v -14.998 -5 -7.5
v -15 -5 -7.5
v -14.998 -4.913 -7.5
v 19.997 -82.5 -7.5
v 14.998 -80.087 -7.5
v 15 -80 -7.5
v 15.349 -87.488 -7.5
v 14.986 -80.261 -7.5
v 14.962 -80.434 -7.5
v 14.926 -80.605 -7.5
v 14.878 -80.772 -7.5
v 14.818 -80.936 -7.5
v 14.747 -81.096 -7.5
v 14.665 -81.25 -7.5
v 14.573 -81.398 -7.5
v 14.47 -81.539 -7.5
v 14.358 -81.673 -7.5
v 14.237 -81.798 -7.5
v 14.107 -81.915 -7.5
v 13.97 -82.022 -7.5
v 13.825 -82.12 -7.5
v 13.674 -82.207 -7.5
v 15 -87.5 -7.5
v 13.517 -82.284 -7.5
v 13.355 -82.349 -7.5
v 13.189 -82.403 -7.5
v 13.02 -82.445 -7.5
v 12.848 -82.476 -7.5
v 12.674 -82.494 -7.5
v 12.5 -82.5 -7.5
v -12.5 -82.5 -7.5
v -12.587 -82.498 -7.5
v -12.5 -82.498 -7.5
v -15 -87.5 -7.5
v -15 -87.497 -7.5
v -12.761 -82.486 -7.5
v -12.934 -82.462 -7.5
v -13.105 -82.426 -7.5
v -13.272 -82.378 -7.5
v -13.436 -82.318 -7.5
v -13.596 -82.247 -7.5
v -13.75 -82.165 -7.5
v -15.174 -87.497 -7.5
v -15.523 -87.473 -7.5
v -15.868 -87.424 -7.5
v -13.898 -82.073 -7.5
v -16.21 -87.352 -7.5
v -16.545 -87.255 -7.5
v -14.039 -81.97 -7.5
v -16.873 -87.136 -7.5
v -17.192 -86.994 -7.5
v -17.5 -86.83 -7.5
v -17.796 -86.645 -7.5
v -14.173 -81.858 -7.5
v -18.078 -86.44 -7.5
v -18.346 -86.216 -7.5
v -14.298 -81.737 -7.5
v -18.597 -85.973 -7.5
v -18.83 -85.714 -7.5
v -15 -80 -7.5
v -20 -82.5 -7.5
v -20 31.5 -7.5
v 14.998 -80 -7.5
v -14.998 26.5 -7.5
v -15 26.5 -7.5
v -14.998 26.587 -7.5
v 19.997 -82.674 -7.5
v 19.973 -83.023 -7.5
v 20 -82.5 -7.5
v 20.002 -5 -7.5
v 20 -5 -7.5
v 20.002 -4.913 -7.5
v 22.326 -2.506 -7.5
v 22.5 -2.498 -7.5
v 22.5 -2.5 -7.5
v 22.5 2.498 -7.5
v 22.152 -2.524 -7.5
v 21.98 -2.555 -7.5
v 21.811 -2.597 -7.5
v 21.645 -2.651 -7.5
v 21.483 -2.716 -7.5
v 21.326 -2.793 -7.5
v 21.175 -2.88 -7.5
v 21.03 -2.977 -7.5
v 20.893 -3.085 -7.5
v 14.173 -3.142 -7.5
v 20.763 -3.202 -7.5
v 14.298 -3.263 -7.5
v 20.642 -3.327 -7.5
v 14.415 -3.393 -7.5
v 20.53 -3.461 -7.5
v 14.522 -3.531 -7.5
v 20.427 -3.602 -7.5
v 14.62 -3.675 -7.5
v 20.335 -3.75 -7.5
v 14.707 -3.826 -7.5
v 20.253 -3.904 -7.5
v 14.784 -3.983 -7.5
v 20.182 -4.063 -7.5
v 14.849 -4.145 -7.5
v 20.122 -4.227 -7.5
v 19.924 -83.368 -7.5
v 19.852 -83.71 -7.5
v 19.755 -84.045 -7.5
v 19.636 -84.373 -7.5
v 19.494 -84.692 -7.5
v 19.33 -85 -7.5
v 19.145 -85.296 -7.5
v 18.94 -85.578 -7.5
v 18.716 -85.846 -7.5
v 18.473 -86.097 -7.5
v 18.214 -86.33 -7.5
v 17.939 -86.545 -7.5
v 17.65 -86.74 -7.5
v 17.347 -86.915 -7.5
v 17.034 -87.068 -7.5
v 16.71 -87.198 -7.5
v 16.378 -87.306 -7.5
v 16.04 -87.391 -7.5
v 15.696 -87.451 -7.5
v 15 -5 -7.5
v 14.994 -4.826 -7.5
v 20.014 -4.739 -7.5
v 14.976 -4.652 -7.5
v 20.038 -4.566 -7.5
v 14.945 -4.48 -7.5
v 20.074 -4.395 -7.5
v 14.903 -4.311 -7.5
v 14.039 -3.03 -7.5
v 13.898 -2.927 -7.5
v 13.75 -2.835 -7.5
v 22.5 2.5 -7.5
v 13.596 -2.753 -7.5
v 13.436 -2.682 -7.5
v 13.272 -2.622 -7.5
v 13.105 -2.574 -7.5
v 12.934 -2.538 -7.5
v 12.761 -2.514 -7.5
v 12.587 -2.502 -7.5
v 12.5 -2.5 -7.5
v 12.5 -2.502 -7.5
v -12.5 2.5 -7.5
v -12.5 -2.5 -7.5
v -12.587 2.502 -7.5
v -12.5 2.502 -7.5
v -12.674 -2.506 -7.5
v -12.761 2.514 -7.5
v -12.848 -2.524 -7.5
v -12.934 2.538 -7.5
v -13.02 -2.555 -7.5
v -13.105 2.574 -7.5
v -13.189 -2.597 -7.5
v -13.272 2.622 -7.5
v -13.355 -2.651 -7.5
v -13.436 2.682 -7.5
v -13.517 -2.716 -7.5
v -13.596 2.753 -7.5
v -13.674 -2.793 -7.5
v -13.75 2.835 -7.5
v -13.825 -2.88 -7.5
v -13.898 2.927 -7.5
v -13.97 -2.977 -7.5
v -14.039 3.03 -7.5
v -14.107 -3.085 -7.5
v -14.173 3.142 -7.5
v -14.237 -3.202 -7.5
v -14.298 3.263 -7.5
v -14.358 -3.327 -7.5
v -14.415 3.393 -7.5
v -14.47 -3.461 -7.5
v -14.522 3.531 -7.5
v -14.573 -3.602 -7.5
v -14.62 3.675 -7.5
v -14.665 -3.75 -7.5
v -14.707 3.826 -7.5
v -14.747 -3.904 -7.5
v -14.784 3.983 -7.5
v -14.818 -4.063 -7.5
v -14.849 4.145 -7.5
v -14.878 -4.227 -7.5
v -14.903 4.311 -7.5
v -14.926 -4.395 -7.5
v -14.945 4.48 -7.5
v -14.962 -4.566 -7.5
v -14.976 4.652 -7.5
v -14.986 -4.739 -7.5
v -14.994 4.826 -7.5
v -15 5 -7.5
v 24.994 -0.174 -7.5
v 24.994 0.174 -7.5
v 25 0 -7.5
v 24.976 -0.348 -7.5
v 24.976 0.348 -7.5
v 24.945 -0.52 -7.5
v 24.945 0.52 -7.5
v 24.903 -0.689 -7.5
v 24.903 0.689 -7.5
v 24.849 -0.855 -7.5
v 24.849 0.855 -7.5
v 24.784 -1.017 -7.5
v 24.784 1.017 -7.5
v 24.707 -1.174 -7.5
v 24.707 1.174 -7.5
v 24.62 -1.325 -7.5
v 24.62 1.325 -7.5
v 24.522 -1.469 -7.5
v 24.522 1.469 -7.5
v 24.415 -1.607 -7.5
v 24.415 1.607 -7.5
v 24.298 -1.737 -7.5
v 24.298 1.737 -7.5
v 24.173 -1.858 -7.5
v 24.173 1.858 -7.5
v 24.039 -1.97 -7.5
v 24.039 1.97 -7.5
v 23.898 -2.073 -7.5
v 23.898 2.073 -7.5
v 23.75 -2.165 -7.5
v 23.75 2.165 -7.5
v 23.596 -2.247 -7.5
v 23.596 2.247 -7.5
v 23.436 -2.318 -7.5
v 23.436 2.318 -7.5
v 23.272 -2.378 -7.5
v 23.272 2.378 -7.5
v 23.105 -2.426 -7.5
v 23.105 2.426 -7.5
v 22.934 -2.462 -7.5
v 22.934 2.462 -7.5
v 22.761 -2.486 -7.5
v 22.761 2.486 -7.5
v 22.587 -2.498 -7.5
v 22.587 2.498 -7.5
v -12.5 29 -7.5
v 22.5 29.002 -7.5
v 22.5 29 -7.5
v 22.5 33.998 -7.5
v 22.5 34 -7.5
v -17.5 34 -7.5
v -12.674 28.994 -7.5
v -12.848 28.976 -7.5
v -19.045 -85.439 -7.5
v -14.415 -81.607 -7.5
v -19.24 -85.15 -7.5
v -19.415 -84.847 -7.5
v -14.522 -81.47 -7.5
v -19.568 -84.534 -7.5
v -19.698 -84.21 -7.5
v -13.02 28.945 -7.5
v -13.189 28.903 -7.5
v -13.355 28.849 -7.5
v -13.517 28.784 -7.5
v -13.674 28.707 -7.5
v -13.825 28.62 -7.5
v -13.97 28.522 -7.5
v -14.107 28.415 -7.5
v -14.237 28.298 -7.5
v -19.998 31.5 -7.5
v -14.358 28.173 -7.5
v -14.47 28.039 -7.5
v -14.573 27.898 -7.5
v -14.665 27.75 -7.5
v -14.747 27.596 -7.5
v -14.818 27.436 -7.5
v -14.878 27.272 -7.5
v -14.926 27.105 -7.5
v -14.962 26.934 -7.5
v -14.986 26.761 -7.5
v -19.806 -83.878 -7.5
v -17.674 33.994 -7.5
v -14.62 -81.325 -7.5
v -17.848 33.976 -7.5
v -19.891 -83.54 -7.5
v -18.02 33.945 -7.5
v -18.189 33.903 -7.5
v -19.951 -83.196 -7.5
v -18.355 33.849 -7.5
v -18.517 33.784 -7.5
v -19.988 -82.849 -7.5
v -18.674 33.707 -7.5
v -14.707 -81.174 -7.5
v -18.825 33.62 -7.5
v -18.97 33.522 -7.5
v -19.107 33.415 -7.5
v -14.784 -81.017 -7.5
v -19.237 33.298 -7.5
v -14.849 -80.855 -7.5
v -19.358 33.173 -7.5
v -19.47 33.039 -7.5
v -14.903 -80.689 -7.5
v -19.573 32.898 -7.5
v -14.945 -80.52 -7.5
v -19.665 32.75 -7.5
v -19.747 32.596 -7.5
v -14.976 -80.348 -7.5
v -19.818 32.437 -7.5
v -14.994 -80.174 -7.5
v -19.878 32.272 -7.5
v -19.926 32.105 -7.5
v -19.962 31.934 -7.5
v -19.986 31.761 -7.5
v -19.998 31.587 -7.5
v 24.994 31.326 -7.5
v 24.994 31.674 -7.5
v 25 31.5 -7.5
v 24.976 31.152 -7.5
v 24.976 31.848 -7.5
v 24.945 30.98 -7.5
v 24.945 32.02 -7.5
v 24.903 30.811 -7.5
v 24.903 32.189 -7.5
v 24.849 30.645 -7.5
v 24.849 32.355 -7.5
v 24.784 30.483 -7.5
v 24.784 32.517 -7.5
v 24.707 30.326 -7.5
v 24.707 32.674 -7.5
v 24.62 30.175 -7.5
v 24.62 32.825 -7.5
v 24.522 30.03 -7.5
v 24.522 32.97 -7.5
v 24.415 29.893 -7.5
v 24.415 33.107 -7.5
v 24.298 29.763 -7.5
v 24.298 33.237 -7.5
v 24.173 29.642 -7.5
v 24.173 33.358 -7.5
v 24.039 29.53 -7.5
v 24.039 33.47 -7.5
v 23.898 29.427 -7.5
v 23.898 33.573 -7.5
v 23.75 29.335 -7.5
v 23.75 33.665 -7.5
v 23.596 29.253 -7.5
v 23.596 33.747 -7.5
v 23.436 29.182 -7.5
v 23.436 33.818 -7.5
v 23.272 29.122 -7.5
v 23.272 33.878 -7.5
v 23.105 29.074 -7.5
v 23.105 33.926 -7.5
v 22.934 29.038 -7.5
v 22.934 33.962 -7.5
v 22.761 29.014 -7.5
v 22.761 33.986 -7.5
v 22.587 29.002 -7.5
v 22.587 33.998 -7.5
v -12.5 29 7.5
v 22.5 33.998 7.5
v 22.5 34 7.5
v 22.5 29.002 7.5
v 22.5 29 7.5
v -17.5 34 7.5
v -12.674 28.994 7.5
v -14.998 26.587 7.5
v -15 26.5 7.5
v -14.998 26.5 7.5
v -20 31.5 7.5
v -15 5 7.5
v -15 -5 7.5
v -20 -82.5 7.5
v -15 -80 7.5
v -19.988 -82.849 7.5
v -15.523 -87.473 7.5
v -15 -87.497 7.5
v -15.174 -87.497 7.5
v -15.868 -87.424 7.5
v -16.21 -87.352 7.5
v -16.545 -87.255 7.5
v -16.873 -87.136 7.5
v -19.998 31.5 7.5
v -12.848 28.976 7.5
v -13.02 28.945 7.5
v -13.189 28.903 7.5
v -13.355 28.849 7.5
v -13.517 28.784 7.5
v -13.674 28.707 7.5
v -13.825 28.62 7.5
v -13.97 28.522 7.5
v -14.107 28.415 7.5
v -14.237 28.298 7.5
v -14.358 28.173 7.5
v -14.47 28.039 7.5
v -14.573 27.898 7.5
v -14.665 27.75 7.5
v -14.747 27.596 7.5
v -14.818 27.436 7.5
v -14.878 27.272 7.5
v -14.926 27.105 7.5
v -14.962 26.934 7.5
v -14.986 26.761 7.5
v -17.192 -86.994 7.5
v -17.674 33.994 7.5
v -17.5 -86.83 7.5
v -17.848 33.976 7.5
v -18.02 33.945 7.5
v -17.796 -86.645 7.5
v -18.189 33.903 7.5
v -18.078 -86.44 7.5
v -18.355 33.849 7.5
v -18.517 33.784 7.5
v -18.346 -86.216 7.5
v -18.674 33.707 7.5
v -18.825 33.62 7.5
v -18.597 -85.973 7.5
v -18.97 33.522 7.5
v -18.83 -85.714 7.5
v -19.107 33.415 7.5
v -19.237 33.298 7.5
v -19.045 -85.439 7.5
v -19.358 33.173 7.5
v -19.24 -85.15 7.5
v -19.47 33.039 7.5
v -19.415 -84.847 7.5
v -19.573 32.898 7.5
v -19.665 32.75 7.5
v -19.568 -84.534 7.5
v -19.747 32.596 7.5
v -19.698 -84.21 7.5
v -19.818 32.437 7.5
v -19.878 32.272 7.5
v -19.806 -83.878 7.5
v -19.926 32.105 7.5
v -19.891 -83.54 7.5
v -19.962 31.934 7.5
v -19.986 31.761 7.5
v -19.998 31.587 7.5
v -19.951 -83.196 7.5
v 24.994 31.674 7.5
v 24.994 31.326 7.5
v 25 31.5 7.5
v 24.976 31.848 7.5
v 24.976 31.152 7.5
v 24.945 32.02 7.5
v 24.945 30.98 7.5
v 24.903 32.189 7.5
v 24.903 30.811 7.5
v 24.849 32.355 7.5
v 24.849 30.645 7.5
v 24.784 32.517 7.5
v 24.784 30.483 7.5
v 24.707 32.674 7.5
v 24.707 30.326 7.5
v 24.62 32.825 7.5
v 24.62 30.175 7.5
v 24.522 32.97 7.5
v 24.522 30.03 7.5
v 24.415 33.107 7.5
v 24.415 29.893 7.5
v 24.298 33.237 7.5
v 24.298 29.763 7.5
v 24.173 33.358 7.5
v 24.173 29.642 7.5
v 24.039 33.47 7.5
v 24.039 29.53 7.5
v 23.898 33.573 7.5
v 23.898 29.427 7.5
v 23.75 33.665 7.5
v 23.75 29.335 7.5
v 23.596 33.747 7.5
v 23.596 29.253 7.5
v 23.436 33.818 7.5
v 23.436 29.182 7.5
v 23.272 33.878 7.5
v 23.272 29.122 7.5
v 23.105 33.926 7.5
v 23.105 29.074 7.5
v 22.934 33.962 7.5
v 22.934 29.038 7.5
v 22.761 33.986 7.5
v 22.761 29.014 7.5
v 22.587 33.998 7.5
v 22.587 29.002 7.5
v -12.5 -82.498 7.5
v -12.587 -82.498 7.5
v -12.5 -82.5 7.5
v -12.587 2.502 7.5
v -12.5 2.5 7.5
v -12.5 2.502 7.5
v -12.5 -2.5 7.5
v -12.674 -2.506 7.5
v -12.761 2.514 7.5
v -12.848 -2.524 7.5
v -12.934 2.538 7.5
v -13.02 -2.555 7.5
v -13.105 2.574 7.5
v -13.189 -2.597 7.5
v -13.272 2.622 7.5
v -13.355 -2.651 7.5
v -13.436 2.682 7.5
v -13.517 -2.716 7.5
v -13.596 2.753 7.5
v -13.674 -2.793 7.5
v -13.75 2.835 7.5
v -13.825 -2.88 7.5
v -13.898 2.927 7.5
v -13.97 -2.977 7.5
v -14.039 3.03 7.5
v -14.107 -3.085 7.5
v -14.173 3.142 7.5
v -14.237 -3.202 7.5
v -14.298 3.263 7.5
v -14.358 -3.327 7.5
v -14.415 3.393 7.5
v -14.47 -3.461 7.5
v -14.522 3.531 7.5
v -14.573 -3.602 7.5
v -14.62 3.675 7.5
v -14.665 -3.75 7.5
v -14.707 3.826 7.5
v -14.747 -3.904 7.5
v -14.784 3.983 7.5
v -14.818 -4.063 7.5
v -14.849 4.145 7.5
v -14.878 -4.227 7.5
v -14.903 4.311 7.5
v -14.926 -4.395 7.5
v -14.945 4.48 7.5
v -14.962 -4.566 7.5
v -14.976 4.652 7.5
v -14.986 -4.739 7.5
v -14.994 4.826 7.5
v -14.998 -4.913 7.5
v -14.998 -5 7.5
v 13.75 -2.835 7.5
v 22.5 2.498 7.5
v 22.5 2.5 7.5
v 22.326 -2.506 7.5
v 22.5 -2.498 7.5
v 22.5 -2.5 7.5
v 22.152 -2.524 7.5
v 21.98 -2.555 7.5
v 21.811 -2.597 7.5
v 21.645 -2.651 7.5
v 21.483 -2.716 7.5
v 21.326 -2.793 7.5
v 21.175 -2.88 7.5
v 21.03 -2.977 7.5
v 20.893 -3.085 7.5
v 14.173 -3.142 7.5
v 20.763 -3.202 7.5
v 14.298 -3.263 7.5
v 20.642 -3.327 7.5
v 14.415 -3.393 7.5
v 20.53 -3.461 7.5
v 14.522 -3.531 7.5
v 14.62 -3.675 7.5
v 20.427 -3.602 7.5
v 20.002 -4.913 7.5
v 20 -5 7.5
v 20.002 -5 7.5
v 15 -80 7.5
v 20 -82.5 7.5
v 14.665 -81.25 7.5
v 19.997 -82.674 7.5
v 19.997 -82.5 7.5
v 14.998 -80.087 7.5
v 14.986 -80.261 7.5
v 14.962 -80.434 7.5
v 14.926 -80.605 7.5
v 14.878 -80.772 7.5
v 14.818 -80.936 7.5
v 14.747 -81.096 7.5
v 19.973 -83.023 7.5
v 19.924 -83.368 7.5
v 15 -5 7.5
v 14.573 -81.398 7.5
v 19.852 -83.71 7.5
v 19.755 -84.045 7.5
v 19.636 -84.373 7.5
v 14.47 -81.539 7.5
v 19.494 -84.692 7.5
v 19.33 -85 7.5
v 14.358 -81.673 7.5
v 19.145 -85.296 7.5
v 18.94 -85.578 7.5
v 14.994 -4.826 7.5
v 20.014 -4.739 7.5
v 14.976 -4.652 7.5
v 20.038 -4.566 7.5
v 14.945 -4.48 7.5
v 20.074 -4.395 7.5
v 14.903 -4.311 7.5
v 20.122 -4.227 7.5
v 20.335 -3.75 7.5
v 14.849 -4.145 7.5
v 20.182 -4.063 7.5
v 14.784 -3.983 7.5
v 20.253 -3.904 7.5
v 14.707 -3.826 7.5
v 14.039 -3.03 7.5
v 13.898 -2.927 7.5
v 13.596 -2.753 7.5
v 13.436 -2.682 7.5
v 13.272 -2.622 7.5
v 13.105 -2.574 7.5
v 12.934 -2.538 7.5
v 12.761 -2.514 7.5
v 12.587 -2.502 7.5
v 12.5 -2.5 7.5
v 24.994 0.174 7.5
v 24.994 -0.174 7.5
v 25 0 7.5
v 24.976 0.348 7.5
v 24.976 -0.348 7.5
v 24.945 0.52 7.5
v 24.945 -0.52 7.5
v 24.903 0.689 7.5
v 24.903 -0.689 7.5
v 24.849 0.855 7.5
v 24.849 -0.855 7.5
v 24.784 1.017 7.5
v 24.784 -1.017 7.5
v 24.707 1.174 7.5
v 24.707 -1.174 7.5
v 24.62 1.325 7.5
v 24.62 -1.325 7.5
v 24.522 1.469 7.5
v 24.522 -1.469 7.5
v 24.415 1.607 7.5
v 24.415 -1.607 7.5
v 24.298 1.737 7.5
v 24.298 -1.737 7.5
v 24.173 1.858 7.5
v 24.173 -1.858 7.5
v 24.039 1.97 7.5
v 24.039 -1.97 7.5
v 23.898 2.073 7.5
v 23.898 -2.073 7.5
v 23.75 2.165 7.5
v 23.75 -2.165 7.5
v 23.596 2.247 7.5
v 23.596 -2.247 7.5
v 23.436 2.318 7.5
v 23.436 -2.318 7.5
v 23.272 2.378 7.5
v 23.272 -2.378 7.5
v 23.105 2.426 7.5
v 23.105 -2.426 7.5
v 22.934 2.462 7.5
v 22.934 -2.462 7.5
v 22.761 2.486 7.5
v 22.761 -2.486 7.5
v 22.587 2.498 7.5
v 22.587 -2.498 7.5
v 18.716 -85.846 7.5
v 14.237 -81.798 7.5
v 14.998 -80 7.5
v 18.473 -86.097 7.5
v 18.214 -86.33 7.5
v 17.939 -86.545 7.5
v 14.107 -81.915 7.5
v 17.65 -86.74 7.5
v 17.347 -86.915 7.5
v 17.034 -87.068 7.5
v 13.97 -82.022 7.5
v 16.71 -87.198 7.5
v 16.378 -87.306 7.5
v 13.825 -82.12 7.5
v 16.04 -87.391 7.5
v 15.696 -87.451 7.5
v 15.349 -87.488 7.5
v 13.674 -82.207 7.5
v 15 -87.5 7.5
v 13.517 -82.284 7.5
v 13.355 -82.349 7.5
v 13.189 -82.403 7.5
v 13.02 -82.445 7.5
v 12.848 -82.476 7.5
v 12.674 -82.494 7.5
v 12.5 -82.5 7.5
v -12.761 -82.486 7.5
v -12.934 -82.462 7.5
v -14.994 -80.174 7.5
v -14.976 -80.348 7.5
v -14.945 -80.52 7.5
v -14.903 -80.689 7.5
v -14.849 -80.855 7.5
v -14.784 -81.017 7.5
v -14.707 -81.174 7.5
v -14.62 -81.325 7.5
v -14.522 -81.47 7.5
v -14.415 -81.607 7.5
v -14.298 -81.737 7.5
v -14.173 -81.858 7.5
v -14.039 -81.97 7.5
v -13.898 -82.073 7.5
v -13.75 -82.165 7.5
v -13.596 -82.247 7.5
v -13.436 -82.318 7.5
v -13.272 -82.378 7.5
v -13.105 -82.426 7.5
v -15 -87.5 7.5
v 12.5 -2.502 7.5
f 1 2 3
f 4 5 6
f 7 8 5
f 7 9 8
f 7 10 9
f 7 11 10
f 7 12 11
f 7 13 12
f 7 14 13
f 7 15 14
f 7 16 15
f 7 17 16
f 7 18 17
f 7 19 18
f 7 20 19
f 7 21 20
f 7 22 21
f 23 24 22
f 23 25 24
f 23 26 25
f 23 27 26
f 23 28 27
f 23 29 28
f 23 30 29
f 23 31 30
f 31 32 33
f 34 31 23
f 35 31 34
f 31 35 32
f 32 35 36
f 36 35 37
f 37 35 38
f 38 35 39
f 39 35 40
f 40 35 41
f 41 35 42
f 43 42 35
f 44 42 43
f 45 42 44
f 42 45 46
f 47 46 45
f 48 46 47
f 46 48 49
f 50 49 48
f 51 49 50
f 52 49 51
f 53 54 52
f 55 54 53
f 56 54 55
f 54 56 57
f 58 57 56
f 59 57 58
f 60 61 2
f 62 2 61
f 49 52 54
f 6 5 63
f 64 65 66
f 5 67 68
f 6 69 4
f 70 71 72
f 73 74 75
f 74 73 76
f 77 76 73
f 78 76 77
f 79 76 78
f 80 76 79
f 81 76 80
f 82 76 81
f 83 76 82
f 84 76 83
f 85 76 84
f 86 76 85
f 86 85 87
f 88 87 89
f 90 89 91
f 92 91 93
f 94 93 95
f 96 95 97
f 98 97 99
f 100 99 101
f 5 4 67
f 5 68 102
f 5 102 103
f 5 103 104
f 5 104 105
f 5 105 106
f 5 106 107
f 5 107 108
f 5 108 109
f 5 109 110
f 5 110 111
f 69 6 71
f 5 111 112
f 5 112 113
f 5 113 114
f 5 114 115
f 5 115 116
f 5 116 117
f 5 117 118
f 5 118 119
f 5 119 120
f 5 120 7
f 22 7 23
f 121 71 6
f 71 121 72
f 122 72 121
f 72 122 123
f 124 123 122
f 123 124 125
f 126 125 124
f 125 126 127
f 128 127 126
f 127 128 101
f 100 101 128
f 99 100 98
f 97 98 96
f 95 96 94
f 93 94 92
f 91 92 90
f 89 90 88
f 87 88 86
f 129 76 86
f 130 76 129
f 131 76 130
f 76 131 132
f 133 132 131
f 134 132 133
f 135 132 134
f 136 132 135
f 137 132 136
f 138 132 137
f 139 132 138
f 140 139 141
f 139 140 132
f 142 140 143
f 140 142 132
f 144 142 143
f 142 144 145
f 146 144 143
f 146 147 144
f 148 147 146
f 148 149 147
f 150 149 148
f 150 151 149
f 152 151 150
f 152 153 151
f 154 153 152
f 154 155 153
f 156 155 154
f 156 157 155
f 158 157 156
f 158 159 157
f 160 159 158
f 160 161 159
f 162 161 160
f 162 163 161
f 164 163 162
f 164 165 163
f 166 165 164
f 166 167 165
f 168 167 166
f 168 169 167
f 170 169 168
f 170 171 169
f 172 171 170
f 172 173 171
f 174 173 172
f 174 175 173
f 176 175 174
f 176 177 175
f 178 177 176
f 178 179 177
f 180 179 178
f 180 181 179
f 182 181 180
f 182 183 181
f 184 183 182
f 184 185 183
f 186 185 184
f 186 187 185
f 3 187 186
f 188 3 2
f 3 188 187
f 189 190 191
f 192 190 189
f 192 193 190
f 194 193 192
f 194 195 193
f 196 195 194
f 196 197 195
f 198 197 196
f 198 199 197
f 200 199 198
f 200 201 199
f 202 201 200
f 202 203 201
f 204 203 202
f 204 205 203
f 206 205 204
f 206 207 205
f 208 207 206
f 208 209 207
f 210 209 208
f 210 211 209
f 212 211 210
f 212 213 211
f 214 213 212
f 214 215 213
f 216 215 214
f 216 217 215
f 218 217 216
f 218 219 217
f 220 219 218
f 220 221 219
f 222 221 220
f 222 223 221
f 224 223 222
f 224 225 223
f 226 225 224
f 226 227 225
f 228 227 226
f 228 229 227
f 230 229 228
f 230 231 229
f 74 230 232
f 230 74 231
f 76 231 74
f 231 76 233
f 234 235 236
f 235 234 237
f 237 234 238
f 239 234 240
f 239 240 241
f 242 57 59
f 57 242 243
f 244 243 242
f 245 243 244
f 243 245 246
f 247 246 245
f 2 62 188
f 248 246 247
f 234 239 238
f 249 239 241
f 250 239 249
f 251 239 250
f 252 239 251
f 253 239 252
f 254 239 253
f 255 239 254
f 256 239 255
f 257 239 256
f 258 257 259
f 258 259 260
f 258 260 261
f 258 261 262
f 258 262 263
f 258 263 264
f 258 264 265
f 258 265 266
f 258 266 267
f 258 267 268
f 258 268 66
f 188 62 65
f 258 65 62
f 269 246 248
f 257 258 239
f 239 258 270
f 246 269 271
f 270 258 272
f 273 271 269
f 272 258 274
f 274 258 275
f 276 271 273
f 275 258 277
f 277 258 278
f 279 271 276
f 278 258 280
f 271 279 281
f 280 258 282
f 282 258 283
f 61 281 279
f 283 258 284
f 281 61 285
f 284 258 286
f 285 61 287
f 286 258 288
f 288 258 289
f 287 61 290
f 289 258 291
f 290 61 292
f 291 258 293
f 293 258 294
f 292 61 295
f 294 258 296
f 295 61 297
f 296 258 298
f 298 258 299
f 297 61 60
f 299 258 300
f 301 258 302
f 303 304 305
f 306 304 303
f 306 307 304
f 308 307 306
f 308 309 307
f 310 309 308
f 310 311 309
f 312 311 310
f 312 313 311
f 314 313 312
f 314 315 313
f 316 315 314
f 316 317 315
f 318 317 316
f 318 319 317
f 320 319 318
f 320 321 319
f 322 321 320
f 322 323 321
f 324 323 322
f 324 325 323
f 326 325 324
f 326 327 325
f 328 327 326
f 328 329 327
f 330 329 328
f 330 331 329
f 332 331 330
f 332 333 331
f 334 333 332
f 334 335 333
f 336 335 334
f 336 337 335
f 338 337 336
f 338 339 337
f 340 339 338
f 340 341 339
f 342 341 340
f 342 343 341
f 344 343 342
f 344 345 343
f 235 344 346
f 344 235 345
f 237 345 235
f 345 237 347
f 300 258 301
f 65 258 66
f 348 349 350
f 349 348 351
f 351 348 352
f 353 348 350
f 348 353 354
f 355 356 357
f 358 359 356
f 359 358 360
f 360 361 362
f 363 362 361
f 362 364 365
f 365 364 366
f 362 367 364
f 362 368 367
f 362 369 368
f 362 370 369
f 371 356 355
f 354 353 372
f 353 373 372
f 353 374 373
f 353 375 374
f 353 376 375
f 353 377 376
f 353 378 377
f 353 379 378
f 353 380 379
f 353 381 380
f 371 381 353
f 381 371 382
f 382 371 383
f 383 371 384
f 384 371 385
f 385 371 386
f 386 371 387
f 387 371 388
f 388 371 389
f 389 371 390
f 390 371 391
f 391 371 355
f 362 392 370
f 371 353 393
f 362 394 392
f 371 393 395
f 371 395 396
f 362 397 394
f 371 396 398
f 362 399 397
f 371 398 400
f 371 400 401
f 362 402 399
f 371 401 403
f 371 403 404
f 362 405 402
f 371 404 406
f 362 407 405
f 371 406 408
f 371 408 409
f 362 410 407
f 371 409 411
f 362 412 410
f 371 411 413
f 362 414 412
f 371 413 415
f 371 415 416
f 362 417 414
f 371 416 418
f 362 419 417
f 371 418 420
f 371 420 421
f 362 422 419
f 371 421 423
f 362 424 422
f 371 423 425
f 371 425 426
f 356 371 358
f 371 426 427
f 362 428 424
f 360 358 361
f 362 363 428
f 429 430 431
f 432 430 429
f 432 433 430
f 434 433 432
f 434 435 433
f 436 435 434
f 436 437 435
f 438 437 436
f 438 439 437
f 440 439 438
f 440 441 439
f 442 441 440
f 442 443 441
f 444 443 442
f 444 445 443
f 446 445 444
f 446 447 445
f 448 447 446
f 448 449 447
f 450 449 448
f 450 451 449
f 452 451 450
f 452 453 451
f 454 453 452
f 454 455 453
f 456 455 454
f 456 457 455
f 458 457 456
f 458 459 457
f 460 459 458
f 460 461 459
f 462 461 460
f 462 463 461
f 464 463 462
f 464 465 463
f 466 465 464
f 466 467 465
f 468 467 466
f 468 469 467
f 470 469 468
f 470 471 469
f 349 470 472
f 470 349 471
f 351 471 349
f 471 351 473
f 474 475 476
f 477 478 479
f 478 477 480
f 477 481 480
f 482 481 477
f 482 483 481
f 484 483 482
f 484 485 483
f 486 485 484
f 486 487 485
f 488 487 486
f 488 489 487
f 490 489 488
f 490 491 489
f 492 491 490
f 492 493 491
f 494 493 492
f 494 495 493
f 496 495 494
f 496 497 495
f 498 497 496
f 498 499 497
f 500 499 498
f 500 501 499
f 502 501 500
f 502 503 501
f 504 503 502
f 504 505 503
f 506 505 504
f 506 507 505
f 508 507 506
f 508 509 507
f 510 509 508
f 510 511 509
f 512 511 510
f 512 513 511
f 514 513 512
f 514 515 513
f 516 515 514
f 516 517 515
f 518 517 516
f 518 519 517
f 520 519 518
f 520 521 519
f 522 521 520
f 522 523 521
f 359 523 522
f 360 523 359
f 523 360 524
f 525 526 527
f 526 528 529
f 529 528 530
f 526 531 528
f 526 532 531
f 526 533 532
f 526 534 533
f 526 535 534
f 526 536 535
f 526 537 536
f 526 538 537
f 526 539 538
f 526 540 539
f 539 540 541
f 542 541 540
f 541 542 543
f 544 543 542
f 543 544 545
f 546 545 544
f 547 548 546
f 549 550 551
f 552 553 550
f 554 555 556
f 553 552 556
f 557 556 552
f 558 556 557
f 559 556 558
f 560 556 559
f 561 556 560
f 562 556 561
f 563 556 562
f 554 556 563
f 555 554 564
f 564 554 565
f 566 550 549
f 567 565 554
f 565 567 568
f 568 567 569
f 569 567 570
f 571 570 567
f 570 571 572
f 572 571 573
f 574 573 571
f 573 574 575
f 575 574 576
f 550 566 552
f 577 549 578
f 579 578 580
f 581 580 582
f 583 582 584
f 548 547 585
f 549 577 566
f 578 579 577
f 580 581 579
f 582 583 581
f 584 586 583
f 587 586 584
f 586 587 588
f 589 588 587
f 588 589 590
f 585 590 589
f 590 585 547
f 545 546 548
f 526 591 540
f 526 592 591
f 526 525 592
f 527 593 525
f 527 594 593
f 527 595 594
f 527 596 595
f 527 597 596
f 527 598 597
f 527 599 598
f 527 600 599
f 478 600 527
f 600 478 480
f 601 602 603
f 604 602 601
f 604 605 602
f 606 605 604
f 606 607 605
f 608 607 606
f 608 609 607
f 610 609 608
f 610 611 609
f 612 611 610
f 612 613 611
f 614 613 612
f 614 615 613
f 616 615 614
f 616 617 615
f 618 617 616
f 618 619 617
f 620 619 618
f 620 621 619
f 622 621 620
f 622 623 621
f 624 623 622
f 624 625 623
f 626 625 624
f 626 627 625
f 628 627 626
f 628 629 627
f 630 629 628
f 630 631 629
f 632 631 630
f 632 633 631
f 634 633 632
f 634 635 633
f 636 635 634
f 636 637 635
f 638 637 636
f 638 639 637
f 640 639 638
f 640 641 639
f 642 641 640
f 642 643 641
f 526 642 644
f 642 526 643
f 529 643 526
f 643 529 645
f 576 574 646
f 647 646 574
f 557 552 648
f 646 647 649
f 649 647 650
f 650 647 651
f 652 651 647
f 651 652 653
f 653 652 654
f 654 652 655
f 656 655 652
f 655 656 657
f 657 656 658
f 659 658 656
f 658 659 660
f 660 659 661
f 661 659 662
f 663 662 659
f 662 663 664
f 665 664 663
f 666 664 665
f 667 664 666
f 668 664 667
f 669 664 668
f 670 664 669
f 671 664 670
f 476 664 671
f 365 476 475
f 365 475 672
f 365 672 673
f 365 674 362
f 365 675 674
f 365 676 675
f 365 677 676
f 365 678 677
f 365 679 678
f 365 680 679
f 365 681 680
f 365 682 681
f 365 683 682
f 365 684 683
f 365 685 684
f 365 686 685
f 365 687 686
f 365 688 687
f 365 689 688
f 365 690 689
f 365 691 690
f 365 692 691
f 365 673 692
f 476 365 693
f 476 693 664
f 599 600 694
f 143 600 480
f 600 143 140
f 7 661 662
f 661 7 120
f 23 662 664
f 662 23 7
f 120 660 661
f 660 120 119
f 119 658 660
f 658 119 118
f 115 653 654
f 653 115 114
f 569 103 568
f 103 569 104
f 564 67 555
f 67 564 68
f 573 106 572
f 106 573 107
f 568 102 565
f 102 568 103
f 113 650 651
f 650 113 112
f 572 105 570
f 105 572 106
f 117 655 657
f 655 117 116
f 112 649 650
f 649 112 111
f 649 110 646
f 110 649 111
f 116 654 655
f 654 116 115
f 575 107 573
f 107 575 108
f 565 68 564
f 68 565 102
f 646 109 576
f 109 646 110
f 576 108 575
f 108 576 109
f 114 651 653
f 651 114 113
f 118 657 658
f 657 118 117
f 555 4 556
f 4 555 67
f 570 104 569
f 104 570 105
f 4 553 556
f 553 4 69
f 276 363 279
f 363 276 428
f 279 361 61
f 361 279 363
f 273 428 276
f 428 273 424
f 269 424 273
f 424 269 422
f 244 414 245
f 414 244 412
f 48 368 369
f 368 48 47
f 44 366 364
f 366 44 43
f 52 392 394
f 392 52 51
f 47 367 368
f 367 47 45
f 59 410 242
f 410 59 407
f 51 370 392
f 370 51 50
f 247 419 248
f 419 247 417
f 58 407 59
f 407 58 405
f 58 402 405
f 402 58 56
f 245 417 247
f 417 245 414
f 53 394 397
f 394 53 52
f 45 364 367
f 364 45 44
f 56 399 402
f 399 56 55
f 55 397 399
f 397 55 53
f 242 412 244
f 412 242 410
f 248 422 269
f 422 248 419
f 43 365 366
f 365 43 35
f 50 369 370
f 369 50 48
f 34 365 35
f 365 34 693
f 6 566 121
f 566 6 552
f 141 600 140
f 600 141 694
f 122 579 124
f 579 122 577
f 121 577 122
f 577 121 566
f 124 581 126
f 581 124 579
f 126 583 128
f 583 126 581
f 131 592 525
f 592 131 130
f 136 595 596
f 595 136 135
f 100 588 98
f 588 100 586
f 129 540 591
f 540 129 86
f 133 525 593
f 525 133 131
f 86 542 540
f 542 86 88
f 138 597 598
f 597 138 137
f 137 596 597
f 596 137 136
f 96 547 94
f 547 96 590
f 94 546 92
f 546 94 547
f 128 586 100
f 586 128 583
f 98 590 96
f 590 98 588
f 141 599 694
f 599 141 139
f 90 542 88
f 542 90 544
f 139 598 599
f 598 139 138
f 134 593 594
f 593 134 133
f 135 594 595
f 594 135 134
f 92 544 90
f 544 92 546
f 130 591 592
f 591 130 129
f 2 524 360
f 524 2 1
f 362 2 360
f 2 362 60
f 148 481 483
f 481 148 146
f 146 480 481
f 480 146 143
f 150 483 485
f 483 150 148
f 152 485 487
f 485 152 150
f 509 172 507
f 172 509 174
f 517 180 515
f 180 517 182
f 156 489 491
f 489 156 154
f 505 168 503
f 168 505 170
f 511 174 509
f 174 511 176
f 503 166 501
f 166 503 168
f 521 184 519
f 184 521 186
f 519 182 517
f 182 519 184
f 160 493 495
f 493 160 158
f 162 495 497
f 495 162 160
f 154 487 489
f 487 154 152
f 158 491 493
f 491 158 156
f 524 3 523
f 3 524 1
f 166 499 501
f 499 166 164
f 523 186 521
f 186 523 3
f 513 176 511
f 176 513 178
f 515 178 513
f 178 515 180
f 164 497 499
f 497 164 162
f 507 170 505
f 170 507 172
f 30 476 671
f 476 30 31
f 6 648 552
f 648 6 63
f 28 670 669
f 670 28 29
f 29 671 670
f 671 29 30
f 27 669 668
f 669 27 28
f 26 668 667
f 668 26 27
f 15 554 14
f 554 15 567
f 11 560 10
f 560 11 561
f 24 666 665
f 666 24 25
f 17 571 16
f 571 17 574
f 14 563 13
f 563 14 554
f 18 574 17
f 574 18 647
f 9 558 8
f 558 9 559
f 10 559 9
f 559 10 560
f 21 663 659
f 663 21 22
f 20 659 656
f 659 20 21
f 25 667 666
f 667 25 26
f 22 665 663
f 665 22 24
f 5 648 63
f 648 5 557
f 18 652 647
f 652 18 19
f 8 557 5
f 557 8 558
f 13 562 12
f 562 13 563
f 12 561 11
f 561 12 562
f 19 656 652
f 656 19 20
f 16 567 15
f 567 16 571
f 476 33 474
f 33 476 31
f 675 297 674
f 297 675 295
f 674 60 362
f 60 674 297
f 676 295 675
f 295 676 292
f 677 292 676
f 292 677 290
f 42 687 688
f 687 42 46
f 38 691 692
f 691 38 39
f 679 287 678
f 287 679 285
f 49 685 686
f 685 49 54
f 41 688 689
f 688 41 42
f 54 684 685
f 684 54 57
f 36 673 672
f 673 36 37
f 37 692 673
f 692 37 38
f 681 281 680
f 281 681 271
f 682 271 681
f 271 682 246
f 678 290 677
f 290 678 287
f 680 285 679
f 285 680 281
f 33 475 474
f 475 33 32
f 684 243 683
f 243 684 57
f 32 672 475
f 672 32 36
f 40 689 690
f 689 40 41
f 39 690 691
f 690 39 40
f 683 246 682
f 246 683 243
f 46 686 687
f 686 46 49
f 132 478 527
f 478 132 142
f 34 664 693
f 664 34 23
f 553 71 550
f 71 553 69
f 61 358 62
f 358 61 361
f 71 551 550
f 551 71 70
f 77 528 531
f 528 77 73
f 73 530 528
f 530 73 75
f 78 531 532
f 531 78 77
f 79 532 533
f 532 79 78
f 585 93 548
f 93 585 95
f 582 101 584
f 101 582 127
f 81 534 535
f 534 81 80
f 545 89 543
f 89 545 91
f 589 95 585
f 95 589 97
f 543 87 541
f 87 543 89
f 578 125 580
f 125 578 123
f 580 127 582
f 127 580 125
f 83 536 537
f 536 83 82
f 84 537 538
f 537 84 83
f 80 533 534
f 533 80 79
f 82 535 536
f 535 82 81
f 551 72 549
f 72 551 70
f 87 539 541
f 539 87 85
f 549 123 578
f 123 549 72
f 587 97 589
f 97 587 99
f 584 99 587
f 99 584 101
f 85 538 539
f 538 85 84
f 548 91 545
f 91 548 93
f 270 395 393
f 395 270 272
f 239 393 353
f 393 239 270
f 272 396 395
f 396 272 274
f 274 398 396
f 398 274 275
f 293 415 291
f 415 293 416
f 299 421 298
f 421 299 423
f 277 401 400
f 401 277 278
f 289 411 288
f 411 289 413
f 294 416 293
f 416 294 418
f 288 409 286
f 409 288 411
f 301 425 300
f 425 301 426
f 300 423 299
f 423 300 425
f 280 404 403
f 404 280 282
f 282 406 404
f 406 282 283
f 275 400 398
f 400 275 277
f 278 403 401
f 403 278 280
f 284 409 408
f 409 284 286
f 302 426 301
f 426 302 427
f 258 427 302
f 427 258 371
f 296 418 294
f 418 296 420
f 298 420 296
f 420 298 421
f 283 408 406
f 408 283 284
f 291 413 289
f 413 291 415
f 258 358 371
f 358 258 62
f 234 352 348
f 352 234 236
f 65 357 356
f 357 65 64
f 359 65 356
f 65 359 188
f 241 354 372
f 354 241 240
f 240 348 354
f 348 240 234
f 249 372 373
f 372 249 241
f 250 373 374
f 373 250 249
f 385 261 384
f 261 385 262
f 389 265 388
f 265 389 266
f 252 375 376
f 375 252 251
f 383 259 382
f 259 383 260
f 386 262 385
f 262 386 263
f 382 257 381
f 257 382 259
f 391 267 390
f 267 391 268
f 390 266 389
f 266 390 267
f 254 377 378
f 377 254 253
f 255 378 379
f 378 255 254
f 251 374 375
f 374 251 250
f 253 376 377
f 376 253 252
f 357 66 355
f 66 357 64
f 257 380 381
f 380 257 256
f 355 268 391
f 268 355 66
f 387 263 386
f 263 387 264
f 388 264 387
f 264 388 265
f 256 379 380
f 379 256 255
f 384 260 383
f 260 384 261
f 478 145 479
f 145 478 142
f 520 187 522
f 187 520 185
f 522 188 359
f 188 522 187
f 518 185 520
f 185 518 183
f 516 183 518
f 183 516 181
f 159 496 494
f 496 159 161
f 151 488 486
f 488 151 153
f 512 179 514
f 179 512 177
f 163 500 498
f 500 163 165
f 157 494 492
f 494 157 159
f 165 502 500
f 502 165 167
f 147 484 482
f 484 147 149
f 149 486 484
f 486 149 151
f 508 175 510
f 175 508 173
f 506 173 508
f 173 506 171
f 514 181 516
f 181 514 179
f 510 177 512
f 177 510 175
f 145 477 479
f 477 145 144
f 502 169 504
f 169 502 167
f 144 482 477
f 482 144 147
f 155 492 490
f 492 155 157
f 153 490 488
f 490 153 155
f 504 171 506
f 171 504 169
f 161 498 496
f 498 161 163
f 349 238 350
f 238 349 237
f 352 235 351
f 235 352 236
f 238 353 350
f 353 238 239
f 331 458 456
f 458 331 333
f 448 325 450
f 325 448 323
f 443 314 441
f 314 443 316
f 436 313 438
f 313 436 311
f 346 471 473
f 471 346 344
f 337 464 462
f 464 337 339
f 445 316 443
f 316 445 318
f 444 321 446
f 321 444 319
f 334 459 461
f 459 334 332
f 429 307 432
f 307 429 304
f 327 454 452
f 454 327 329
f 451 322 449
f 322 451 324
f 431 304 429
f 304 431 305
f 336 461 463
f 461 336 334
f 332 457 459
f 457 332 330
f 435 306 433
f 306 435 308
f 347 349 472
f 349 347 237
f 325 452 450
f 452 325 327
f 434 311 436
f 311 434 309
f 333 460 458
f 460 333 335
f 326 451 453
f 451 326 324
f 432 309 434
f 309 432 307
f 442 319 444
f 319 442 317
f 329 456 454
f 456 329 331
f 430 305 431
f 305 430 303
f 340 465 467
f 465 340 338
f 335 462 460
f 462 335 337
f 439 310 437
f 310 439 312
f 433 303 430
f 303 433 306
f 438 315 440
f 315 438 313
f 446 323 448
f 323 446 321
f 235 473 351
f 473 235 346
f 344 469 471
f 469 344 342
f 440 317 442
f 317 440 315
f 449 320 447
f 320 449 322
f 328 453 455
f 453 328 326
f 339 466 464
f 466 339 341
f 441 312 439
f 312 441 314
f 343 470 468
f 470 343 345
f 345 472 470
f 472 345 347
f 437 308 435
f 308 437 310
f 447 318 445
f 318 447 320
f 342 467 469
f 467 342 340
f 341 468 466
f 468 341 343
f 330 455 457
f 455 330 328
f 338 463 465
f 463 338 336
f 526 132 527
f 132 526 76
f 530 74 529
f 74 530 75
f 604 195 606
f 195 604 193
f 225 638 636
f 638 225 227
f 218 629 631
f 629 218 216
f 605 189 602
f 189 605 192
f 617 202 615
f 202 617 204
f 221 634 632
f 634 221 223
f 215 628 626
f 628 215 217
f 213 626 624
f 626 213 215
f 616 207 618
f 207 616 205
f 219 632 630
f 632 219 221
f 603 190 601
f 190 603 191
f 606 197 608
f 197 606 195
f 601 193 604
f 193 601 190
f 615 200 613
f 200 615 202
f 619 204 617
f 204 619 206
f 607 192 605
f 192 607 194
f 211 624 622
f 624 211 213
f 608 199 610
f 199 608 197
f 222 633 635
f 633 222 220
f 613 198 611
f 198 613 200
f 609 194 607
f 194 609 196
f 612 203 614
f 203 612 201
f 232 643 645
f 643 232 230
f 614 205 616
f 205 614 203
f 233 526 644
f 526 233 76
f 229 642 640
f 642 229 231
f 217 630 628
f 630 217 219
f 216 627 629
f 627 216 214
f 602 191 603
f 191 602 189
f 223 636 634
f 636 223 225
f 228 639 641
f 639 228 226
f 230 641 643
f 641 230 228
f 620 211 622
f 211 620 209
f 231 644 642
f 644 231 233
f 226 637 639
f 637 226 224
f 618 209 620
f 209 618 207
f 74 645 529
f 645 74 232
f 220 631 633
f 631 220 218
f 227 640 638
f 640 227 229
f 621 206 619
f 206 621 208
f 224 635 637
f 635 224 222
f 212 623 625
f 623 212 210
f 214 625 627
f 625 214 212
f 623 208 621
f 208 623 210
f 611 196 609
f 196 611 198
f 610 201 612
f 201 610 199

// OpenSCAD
$fn=90;

module outerCornerRadius(radius, depth) {
    intersection() {
        cylinder(r=radius, h=depth, center=true);
        translate([radius / 2, radius / 2, 0]) cube([radius, radius, depth], center=true);
    };    
};

module innerCornerRadius(radius, depth) {
    difference() {
        cube([radius, radius, depth], center=true);
        translate([-radius / 2, -radius / 2, 0]) cylinder(r=radius, h=depth, center=true);
    };
};

module box(boxHeight, boxDepth, width, thickness) {
    hangerInnerRadius = thickness / 2;
    hangerOuterRadius = thickness;
    boxOuterDepth = boxDepth + thickness - hangerOuterRadius;
    boxOuterHeight = boxHeight + thickness - hangerOuterRadius;
    if (thickness > hangerOuterRadius) {
        difference() {
            cube([boxOuterDepth, boxOuterHeight, width], center=true);
            cube([boxDepth, boxHeight, width], center=true);
        };
    };
    
    translate([0, (boxOuterHeight + hangerOuterRadius) / 2, 0])
      cube([boxOuterDepth, hangerOuterRadius, width], center = true);
    translate([0, -(boxOuterHeight + hangerOuterRadius) / 2, 0])
      cube([boxOuterDepth, hangerOuterRadius, width], center = true);
    translate([(boxOuterDepth + hangerOuterRadius) / 2, 0, 0])
      cube([hangerOuterRadius, boxOuterHeight, width], center = true);
    translate([- (boxOuterDepth + hangerOuterRadius) / 2, 0, 0])
      cube([hangerOuterRadius, boxOuterHeight, width], center = true);
    
    translate([boxOuterDepth / 2, boxOuterHeight / 2, 0])
      outerCornerRadius(hangerOuterRadius, width);
    translate([-boxOuterDepth / 2, boxOuterHeight / 2, 0])
      rotate([0, 0, 90])
      outerCornerRadius(hangerOuterRadius, width);
    translate([boxOuterDepth / 2, -boxOuterHeight / 2, 0])
      rotate([0, 0, -90])
      outerCornerRadius(hangerOuterRadius, width);
    translate([-boxOuterDepth / 2, -boxOuterHeight / 2, 0])
      rotate([0, 0, 180])
      outerCornerRadius(hangerOuterRadius, width);

    translate([(boxDepth - hangerInnerRadius) / 2, (boxHeight - hangerInnerRadius) / 2, 0])
      innerCornerRadius(hangerInnerRadius, width);
    translate([-(boxDepth - hangerInnerRadius) / 2, (boxHeight - hangerInnerRadius) / 2, 0])
      rotate([0, 0, 90])
      innerCornerRadius(hangerInnerRadius, width);
    translate([(boxDepth - hangerInnerRadius) / 2, -(boxHeight - hangerInnerRadius) / 2, 0])
      rotate([0, 0, -90])
      innerCornerRadius(hangerInnerRadius, width);
    translate([-(boxDepth - hangerInnerRadius) / 2, -(boxHeight - hangerInnerRadius) / 2, 0])
      rotate([0, 0, 180])
      innerCornerRadius(hangerInnerRadius, width);
    
};

module hanger(height, depth, width, thickness) {
    
    endRaduis = thickness / 2;
    translate([-endRaduis, (height + thickness) / 2, 0]) 
      cube([depth, thickness, width], center=true);
    translate([(depth / 2) - endRaduis, (height + thickness) / 2, 0]) 
      cylinder(r=endRaduis, h=width, center = true);
    
    translate([-(depth + thickness) / 2, 0, 0])
      cube([thickness, height + thickness, width], center = true);
    
    translate([-(depth + thickness) / 2, (height + thickness) / 2, 0])
      rotate([0, 0, 90])
      outerCornerRadius(endRaduis, width);
    translate([-(depth - endRaduis) / 2, (height - endRaduis) / 2, 0])
      rotate([0, 0, 90])
      innerCornerRadius(endRaduis, width);

    translate([-endRaduis * 1.5, -(height + thickness) / 2, 0]) 
      cube([depth + endRaduis, thickness, width], center=true);
    translate([(depth / 2) - endRaduis, -(height + thickness) / 2, 0]) 
      cylinder(r=endRaduis, h=width, center = true);

    translate([-(depth - endRaduis) / 2, -(height - endRaduis) / 2, 0])
      rotate([0, 0, 180])
      innerCornerRadius(endRaduis, width);

};


module boxHanger(shelfHeight, shelfDepth, boxHeight, boxWidth, hangerWidth, hangerThickness) {

    translate([0, -(boxHeight + hangerThickness) / 2, 0])
      box(boxHeight, boxWidth, hangerWidth, hangerThickness);

    translate([((boxWidth + (2 * hangerThickness)) / 2) + (hangerThickness / 4), -hangerThickness * 0.75 , 0])
      rotate([0, 0, 90])
      innerCornerRadius(hangerThickness / 2, hangerWidth);

    translate([(shelfDepth - boxWidth) / 2, (shelfHeight + hangerThickness) / 2, 0])
      hanger(shelfHeight, shelfDepth, hangerWidth, hangerThickness);
};

shelfHeight = 26.5;
shelfDepth = 40;
psuHeight = 80;
psuWidth = 30;
hangerWidth = 15;
hangerThickness = 5;

boxHanger(shelfHeight, shelfDepth, psuHeight, psuWidth, hangerWidth, hangerThickness);
